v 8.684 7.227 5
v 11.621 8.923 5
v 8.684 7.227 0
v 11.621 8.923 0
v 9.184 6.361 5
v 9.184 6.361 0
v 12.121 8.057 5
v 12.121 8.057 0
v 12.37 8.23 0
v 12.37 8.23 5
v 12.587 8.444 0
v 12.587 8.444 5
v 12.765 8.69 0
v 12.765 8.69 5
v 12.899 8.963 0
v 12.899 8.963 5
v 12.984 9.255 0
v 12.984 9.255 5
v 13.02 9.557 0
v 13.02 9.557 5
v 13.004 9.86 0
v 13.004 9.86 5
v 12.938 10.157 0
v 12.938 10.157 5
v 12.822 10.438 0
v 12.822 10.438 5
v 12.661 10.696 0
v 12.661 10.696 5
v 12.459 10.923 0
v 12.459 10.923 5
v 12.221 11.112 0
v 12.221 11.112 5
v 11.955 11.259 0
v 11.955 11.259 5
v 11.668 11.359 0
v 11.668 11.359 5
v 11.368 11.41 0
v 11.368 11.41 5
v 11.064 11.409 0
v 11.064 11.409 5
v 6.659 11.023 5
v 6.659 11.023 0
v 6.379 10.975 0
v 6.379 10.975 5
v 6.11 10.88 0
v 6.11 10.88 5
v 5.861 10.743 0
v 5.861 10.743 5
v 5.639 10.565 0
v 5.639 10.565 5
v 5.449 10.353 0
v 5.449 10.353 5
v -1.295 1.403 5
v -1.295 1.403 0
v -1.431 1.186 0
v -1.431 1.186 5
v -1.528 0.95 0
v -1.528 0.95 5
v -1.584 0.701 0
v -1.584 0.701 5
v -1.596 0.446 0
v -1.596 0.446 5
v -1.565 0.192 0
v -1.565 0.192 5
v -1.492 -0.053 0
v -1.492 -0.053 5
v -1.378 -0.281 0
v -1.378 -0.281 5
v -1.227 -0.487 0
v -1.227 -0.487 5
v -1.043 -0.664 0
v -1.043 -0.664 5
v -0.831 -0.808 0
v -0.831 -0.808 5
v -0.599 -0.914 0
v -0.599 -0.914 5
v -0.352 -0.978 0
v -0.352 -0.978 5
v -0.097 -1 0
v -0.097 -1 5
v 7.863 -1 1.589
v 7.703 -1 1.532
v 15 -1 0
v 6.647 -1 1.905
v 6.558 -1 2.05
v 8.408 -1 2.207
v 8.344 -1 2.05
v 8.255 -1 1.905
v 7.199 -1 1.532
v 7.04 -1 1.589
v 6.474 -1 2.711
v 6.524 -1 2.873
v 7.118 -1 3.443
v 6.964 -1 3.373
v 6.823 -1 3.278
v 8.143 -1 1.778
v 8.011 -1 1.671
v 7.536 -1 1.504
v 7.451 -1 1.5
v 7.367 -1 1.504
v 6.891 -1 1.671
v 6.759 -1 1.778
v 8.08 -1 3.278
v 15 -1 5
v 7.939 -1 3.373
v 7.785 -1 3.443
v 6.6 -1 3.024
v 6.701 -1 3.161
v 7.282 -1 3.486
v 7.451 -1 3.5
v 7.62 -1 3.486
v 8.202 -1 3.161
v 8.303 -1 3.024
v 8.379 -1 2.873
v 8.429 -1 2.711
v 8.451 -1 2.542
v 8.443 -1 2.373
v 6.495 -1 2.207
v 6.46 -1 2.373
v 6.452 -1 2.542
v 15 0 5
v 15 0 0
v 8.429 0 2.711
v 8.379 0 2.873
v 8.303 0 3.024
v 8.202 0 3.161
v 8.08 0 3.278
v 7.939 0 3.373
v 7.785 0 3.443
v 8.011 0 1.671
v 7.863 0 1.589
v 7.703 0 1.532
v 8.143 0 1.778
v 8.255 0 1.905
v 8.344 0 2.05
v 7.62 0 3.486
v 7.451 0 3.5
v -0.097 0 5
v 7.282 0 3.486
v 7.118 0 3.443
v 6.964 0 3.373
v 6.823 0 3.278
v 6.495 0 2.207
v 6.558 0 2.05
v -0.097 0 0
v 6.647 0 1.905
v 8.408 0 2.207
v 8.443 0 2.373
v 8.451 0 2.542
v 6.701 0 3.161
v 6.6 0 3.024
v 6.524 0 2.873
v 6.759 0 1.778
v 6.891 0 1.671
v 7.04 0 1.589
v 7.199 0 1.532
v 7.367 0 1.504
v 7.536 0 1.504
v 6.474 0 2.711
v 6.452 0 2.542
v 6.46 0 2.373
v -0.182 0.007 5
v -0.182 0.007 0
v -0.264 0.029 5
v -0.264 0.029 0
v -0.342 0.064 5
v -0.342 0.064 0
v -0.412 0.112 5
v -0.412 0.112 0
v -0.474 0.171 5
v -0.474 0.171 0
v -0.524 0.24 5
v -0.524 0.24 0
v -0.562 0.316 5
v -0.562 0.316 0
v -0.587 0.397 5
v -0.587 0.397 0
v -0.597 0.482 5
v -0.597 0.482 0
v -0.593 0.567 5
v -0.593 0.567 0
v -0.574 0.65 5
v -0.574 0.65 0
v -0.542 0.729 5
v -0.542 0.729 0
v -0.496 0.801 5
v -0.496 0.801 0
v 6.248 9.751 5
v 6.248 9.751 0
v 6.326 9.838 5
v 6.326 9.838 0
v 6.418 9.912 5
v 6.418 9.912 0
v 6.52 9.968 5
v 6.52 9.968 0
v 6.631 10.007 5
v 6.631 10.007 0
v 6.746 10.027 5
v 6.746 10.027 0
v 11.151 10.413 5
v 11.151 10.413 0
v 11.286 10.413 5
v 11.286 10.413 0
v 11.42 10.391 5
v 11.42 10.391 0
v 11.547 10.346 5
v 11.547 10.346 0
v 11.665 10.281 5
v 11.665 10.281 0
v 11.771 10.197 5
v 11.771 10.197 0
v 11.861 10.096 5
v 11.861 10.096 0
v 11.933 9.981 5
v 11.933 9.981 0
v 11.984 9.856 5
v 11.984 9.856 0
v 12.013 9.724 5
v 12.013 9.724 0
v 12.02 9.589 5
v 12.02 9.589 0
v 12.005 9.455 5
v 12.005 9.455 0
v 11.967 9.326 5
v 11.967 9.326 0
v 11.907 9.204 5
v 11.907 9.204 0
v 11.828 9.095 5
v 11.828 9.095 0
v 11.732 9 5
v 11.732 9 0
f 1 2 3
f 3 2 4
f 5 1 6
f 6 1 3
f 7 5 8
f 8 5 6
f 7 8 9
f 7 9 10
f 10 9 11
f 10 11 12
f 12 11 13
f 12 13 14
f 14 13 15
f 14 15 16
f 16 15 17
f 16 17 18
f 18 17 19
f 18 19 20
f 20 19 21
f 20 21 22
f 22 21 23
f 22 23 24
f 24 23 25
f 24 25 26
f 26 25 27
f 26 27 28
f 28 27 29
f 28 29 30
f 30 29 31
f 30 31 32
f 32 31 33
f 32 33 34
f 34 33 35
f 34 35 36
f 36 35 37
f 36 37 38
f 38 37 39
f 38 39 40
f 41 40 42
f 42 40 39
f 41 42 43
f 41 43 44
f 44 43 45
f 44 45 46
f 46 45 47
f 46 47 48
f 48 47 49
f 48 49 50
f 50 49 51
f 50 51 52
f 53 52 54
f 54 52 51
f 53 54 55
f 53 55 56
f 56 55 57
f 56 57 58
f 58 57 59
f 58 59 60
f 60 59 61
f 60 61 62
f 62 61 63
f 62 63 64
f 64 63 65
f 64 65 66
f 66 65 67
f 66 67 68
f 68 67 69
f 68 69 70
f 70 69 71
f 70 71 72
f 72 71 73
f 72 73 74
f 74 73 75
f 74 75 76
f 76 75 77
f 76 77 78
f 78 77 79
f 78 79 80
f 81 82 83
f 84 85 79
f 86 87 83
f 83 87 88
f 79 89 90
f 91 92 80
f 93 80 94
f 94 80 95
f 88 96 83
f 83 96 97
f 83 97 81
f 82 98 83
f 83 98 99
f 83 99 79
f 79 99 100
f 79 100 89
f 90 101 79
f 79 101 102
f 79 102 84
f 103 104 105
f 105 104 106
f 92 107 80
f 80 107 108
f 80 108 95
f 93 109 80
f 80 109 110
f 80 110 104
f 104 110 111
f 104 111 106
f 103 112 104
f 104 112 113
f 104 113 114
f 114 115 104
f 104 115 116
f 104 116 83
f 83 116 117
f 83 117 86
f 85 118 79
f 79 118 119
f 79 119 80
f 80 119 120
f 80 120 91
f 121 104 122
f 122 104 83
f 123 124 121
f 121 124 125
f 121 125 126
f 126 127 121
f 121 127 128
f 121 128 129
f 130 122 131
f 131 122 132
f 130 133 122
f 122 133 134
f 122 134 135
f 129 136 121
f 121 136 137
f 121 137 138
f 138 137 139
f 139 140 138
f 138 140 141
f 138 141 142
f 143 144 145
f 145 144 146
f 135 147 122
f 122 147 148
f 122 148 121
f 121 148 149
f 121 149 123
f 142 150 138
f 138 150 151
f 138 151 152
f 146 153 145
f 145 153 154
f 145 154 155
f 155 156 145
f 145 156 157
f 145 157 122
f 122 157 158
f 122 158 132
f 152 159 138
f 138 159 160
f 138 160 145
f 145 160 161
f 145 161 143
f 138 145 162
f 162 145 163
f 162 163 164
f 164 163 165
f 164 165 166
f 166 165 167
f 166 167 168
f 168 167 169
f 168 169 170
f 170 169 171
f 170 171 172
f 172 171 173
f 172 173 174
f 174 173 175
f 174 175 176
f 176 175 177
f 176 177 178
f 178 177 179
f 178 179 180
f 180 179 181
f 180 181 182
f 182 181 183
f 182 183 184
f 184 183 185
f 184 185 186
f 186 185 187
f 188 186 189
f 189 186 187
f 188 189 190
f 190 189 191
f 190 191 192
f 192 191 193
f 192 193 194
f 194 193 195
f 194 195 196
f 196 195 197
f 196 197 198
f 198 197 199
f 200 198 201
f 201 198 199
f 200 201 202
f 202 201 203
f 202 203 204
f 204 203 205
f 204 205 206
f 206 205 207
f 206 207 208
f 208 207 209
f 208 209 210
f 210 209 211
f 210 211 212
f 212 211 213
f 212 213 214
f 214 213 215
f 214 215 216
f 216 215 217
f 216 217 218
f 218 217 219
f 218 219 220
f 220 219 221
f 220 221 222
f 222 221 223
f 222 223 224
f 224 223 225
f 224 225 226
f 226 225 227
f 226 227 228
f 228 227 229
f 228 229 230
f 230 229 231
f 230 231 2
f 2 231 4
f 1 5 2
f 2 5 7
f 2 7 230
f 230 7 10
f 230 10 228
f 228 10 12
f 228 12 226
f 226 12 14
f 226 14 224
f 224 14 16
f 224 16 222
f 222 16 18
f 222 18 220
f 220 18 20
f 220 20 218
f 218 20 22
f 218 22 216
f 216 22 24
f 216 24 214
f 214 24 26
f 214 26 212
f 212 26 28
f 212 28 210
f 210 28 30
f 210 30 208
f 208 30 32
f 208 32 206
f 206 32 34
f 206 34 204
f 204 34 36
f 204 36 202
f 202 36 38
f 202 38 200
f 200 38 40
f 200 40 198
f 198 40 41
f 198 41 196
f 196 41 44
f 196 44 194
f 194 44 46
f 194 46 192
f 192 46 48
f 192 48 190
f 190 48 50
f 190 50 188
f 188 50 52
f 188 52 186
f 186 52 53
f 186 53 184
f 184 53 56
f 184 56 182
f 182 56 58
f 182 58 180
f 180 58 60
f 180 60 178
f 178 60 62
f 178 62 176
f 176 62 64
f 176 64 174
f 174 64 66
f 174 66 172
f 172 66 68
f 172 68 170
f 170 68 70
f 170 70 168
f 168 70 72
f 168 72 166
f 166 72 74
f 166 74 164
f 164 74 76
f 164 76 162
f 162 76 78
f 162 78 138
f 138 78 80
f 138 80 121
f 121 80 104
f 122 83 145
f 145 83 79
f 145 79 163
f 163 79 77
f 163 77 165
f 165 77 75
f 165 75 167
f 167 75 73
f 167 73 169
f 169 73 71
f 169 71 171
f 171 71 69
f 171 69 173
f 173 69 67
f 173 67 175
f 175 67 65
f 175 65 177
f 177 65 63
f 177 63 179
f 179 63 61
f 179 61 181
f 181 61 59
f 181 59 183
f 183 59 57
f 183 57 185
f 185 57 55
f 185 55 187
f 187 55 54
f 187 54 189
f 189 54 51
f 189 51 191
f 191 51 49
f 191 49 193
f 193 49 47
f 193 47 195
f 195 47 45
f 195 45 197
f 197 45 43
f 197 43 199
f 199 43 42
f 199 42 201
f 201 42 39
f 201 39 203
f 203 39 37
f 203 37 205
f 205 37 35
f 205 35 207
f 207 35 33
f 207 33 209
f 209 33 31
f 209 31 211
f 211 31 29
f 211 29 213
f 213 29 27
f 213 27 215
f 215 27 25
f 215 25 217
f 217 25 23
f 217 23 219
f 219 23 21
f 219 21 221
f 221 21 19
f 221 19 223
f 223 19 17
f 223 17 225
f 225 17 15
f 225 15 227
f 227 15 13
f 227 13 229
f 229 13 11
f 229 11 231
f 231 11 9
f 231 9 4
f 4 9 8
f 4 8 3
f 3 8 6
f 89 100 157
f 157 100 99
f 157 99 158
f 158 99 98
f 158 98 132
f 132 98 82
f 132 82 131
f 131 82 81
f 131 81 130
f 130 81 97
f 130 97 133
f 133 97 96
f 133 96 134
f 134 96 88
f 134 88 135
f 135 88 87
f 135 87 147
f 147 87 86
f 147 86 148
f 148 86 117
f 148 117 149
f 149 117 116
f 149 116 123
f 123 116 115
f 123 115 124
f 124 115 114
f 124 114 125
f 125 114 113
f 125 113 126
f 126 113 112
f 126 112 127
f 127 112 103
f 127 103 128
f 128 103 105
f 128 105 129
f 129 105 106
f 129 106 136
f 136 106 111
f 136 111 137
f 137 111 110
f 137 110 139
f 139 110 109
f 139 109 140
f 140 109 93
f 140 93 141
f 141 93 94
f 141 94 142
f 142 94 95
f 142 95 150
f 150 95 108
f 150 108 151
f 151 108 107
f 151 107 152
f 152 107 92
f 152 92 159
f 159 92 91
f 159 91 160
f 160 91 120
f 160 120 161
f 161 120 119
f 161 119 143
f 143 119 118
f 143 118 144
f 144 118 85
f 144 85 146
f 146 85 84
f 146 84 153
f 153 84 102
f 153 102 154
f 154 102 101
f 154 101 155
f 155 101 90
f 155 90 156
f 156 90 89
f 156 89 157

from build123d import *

# Parameters (mm, degrees)
EXTRUDE_THIN2_DEPTH = 5
CUT_EXTRUDE1_REACH  = 21.502
SKETCH2_R           = 1


with BuildPart() as part:
    # Sketch1 → Extrude-Thin2 (new body)
    with BuildSketch(Plane.XY):
        with BuildLine():
            Line((8.683836794, 7.227072274), (11.620904097, 8.922788872))
            ThreePointArc((11.620904097, 8.922788872), (11.983877658, 9.856173835), (11.151179503, 10.412564954))
            Line((11.151179503, 10.412564954), (6.74601462, 10.027162966))
            ThreePointArc((6.74601462, 10.027162966), (6.467656906, 9.942060472), (6.247978783, 9.751097193))
            Line((6.247978783, 9.751097193), (-0.496472901, 0.800907512))
            ThreePointArc((-0.496472901, 0.800907512), (-0.544622327, 0.276901093), (-0.097155146, 0))
            Line((-0.097155146, 0), (0, 0))
            Line((0, 0), (15, 0))
            Line((15, 0), (15, -1))
            Line((15, -1), (0, -1))
            Line((0, -1), (-0.097155146, -1))
            ThreePointArc((-0.097155146, -1), (-1.439556688, -0.16929672), (-1.295108411, 1.402722535))
            Line((-1.295108411, 1.402722535), (5.449343273, 10.352912216))
            ThreePointArc((5.449343273, 10.352912216), (5.982847286, 10.816680179), (6.658858877, 11.023357664))
            Line((6.658858877, 11.023357664), (11.064023761, 11.408759652))
            ThreePointArc((11.064023761, 11.408759652), (12.937594609, 10.156879635), (12.120904097, 8.056763469))
            Line((12.120904097, 8.056763469), (9.183836794, 6.36104687))
            Line((9.183836794, 6.36104687), (8.683836794, 7.227072274))
        make_face()
    extrude(amount=EXTRUDE_THIN2_DEPTH)

    # Sketch2 → Cut-Extrude1 (cut, up to next)
    with BuildSketch(Plane(origin=(0, 0, 0), x_dir=(1, 0, 0), z_dir=(0, 1, 0)), mode=Mode.PRIVATE) as cut_extrude1_sk1:
        with Locations(Location((7.451422427, -2.5, 0), (0, 0, 270))):
            Circle(SKETCH2_R)
    cut_extrude1_tool1 = extrude(cut_extrude1_sk1.sketch, amount=-CUT_EXTRUDE1_REACH, mode=Mode.PRIVATE) & part.part
    add(cut_extrude1_tool1.solids().sort_by_distance((7.451422, 0, 2.5))[0], mode=Mode.SUBTRACT)


solid = part.part
